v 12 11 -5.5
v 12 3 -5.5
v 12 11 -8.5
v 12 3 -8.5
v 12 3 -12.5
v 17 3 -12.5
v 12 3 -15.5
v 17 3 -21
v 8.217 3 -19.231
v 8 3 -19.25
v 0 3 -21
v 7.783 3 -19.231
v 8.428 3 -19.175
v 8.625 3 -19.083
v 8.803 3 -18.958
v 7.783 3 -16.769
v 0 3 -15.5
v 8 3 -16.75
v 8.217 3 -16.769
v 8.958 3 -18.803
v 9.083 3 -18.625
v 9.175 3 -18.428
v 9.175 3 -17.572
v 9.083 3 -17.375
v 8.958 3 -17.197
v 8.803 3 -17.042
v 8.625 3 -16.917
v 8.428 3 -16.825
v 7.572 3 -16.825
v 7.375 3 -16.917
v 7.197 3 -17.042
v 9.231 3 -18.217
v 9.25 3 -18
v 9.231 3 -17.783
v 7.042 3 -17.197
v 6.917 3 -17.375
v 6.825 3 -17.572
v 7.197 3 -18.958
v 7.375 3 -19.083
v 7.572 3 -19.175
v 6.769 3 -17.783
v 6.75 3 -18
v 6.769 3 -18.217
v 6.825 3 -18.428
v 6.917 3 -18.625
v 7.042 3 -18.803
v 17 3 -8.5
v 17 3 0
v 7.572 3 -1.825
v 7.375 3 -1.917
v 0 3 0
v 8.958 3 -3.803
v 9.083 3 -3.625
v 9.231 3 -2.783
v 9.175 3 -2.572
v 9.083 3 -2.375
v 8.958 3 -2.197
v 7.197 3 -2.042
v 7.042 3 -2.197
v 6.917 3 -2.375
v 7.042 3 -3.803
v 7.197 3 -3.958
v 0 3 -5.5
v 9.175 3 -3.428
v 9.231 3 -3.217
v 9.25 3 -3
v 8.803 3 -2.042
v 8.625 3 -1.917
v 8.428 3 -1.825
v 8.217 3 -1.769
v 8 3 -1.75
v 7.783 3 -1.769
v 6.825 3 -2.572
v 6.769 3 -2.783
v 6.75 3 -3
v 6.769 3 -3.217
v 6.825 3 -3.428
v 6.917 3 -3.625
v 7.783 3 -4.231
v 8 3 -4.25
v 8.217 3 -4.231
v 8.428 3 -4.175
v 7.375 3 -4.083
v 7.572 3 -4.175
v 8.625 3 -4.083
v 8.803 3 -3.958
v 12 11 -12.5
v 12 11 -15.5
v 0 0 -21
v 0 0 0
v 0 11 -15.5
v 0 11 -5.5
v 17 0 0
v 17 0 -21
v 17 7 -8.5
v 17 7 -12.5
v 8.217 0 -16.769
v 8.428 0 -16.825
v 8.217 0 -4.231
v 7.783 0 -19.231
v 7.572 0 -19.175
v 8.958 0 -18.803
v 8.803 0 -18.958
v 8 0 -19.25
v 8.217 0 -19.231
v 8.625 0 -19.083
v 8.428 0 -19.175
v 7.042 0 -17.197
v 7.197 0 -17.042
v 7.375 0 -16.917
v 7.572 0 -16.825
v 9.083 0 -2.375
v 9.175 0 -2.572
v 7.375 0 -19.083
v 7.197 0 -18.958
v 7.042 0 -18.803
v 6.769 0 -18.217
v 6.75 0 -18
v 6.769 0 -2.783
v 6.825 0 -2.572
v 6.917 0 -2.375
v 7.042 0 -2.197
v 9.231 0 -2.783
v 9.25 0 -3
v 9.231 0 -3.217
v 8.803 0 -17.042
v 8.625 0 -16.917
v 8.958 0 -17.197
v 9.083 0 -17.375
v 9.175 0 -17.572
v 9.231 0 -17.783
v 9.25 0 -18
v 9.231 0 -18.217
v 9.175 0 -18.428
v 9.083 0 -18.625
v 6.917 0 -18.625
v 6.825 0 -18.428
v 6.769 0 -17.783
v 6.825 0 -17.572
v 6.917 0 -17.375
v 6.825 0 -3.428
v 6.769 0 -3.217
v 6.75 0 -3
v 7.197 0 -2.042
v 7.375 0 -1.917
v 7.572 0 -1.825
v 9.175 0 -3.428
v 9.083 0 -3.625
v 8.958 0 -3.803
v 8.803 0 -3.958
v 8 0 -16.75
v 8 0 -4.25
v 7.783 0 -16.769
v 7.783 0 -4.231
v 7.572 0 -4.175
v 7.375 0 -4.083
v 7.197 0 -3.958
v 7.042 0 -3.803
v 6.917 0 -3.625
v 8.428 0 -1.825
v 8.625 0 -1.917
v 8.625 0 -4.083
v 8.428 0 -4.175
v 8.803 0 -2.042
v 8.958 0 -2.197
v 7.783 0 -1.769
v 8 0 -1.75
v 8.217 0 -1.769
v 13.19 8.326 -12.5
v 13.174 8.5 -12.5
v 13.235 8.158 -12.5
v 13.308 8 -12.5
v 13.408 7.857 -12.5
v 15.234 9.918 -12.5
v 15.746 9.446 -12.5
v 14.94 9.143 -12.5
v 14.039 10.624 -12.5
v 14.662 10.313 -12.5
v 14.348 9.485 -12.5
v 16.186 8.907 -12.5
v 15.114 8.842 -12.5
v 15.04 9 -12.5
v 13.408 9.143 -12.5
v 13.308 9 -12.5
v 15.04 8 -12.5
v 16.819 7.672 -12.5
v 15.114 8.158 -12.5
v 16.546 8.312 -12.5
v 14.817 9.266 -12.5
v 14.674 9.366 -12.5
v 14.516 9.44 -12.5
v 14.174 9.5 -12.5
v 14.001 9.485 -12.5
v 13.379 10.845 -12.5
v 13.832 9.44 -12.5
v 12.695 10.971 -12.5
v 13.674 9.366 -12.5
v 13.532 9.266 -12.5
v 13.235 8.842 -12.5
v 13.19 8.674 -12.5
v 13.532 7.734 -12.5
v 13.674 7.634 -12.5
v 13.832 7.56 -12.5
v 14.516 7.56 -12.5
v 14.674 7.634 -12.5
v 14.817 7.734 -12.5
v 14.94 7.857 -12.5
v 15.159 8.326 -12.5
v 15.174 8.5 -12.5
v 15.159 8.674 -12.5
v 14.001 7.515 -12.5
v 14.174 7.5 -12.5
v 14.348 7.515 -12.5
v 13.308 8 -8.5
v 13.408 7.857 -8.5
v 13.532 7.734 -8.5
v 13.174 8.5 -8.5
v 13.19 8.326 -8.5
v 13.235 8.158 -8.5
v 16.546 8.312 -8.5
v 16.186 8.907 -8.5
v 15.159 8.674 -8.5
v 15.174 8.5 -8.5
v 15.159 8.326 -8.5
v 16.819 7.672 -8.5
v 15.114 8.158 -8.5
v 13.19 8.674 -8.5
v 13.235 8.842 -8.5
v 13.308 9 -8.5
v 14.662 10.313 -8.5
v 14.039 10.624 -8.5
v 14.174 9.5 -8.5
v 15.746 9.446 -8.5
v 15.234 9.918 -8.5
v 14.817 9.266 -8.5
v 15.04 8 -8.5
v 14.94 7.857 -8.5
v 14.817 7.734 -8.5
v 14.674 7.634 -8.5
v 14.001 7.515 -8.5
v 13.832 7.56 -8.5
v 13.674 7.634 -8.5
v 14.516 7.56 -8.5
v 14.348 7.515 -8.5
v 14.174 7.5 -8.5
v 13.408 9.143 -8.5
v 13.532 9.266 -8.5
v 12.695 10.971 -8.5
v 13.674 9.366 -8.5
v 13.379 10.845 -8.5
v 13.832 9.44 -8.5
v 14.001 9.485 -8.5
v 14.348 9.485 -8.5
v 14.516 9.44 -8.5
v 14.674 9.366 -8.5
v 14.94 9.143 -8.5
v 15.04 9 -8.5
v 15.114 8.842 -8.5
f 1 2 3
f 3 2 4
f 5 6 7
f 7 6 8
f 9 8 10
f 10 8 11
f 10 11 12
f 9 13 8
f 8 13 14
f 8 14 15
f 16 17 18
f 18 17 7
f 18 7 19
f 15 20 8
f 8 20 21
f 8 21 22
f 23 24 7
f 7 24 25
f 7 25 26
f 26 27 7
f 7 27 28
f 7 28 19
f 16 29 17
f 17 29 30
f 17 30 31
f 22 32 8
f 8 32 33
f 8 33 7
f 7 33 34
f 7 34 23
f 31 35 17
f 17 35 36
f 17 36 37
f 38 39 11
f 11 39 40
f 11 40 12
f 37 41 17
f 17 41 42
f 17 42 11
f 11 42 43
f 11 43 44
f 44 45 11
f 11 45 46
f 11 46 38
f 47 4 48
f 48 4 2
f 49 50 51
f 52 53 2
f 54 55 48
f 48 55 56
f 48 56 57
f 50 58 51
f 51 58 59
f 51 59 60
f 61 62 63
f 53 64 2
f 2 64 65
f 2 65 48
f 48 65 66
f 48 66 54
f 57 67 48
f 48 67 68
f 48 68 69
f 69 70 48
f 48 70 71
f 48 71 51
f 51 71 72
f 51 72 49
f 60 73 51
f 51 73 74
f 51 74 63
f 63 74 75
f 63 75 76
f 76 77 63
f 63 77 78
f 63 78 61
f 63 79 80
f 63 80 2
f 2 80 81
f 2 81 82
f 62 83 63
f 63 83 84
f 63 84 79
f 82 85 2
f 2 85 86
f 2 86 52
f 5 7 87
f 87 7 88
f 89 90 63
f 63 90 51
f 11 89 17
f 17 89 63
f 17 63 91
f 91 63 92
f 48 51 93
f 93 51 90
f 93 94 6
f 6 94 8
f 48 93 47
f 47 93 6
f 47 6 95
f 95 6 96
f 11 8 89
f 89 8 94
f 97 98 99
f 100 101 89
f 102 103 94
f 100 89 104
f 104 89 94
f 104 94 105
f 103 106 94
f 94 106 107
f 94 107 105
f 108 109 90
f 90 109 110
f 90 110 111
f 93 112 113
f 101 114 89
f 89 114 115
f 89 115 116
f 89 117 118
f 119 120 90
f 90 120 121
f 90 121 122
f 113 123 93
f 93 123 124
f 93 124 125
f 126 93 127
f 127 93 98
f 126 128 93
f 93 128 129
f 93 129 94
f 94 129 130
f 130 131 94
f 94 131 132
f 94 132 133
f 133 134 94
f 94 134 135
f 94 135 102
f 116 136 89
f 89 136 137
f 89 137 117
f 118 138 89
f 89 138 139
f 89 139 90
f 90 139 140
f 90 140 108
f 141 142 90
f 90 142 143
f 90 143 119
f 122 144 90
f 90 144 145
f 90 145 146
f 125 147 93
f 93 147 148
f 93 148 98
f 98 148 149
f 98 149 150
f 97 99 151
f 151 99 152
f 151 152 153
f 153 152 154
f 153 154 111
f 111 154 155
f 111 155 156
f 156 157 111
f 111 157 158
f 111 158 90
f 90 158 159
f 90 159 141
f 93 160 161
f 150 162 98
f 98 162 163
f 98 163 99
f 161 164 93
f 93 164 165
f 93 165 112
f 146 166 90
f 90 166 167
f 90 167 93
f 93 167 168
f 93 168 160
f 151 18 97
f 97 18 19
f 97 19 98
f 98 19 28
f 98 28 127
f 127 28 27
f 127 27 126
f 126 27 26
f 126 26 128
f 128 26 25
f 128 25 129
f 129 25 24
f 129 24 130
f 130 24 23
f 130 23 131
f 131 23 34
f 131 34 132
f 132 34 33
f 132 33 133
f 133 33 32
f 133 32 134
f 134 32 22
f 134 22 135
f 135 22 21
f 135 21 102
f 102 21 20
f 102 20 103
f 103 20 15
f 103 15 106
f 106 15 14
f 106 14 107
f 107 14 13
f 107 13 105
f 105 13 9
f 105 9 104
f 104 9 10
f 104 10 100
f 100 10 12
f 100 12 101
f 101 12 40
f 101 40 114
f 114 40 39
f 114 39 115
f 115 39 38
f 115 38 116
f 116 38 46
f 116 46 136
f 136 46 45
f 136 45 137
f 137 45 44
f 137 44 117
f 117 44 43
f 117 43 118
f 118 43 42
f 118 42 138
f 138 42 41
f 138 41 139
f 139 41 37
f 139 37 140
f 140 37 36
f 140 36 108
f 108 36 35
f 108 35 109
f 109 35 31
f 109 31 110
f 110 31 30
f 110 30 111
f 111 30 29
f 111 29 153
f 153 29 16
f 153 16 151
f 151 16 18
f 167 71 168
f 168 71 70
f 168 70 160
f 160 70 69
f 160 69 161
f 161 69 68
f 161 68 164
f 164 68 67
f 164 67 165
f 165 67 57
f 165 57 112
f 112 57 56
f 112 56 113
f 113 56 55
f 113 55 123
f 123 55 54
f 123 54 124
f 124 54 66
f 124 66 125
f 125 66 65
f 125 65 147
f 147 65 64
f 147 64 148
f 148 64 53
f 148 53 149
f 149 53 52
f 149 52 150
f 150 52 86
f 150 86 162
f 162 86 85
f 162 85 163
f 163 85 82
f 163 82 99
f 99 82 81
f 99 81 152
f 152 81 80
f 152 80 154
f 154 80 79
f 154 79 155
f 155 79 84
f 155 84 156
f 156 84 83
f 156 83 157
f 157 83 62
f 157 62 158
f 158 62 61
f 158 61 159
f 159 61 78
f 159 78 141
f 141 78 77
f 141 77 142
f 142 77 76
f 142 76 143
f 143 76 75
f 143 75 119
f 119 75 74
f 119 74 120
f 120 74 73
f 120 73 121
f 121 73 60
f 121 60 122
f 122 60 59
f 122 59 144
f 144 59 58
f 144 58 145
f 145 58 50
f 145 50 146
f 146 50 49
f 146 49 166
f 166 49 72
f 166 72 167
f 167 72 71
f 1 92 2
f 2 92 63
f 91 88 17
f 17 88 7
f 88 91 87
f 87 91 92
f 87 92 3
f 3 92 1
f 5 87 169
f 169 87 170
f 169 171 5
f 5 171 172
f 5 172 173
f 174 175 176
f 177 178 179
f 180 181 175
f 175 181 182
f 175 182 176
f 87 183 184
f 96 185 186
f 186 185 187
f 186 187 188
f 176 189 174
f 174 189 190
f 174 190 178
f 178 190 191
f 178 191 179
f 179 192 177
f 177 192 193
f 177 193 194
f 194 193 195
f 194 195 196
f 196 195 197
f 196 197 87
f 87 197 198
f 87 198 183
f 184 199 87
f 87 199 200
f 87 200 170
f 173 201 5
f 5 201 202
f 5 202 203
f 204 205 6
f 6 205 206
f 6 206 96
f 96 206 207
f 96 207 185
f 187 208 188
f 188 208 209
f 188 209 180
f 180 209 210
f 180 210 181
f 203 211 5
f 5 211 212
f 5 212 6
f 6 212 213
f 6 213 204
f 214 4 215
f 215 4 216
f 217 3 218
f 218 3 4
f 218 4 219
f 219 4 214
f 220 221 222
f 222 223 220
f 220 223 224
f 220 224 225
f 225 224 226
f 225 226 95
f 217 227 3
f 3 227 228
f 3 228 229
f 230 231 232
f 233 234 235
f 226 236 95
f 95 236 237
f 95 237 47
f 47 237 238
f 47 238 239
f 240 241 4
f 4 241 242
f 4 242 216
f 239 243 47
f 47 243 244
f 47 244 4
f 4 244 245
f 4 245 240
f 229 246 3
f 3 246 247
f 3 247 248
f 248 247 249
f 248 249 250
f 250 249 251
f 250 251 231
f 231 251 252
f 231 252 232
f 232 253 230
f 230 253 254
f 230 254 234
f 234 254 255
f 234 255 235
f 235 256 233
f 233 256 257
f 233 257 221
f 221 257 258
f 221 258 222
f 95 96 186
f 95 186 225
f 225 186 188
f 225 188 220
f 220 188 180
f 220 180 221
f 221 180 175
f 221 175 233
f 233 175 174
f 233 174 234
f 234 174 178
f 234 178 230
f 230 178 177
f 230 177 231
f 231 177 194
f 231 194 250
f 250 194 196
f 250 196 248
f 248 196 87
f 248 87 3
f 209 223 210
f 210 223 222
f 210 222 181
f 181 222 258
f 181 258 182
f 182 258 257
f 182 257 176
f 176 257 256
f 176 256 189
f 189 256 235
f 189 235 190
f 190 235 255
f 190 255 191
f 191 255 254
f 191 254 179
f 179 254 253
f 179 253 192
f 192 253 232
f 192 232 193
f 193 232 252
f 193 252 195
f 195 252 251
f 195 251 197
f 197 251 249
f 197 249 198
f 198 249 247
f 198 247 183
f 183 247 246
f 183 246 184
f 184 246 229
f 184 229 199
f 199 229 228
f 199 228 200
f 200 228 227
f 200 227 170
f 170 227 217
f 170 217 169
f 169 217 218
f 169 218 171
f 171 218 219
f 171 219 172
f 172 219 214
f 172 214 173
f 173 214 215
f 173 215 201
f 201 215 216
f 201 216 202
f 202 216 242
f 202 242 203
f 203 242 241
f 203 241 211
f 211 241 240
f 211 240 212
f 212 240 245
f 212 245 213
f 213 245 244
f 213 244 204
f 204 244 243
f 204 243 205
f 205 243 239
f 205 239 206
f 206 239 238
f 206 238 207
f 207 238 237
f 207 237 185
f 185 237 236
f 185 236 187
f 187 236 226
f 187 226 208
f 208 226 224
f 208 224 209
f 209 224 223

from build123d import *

# Parameters (mm, degrees)
SKETCH2_W           = 17
SKETCH2_H           = 21
BOSS_EXTRUDE1_DEPTH = 3
SKETCH4_R           = 1.25
CUT_EXTRUDE1_DEPTH  = 6
SKETCH5_R           = 1.25
CUT_EXTRUDE2_DEPTH  = 6
SKETCH6_W           = 12
SKETCH6_H           = 10
BOSS_EXTRUDE3_DEPTH = 8
SKETCH7_W           = 5
SKETCH7_H           = 4
BOSS_EXTRUDE4_DEPTH = 4
BOSS_EXTRUDE5_DEPTH = 4
SKETCH9_R           = 1
CUT_EXTRUDE3_DEPTH  = 6


with BuildPart() as part:
    # Sketch2 → Boss-Extrude1 (new body)
    with BuildSketch(Plane(origin=(0, 0, 0), x_dir=(1, 0, 0), z_dir=(0, 1, 0))):
        with Locations((8.5, 10.5)):
            Rectangle(SKETCH2_W, SKETCH2_H)
    extrude(amount=BOSS_EXTRUDE1_DEPTH)

    # Sketch4 → Cut-Extrude1 (cut)
    with BuildSketch(Plane(origin=(0, 3, 0), x_dir=(1, 0, 0), z_dir=(0, 1, 0))):
        with Locations(Location((8, 18, 0), (0, 0, 270))):
            Circle(SKETCH4_R)
    extrude(amount=-CUT_EXTRUDE1_DEPTH, mode=Mode.SUBTRACT)

    # Sketch5 → Cut-Extrude2 (cut)
    with BuildSketch(Plane(origin=(0, 3, 0), x_dir=(1, 0, 0), z_dir=(0, 1, 0))):
        with Locations(Location((8, 3, 0), (0, 0, 270))):
            Circle(SKETCH5_R)
    extrude(amount=-CUT_EXTRUDE2_DEPTH, mode=Mode.SUBTRACT)

    # Sketch6 → Boss-Extrude3 (add)
    with BuildSketch(Plane(origin=(0, 3, 0), x_dir=(1, 0, 0), z_dir=(0, 1, 0))):
        with Locations((6, 10.5)):
            Rectangle(SKETCH6_W, SKETCH6_H)
    extrude(amount=BOSS_EXTRUDE3_DEPTH)

    # Sketch7 → Boss-Extrude4 (add)
    with BuildSketch(Plane(origin=(0, 3, 0), x_dir=(1, 0, 0), z_dir=(0, 1, 0))):
        with Locations((14.5, 10.5)):
            Rectangle(SKETCH7_W, SKETCH7_H)
    extrude(amount=BOSS_EXTRUDE4_DEPTH)

    # Sketch8 → Boss-Extrude5 (add)
    with BuildSketch(Plane(origin=(0, 0, -12.5), x_dir=(-1, 0, 0), z_dir=(0, 0, -1))):
        with BuildLine():
            Line((-17, 7), (-12, 7))
            Line((-12, 7), (-12, 11))
            ThreePointArc((-12, 11), (-15.234221224, 9.91777653), (-17, 7))
        make_face()
    extrude(amount=-BOSS_EXTRUDE5_DEPTH)

    # Sketch9 → Cut-Extrude3 (cut)
    with BuildSketch(Plane.XY.offset(-8.5)):
        with Locations((14.174425002, 8.5)):
            Circle(SKETCH9_R)
    extrude(amount=-CUT_EXTRUDE3_DEPTH, mode=Mode.SUBTRACT)


solid = part.part
